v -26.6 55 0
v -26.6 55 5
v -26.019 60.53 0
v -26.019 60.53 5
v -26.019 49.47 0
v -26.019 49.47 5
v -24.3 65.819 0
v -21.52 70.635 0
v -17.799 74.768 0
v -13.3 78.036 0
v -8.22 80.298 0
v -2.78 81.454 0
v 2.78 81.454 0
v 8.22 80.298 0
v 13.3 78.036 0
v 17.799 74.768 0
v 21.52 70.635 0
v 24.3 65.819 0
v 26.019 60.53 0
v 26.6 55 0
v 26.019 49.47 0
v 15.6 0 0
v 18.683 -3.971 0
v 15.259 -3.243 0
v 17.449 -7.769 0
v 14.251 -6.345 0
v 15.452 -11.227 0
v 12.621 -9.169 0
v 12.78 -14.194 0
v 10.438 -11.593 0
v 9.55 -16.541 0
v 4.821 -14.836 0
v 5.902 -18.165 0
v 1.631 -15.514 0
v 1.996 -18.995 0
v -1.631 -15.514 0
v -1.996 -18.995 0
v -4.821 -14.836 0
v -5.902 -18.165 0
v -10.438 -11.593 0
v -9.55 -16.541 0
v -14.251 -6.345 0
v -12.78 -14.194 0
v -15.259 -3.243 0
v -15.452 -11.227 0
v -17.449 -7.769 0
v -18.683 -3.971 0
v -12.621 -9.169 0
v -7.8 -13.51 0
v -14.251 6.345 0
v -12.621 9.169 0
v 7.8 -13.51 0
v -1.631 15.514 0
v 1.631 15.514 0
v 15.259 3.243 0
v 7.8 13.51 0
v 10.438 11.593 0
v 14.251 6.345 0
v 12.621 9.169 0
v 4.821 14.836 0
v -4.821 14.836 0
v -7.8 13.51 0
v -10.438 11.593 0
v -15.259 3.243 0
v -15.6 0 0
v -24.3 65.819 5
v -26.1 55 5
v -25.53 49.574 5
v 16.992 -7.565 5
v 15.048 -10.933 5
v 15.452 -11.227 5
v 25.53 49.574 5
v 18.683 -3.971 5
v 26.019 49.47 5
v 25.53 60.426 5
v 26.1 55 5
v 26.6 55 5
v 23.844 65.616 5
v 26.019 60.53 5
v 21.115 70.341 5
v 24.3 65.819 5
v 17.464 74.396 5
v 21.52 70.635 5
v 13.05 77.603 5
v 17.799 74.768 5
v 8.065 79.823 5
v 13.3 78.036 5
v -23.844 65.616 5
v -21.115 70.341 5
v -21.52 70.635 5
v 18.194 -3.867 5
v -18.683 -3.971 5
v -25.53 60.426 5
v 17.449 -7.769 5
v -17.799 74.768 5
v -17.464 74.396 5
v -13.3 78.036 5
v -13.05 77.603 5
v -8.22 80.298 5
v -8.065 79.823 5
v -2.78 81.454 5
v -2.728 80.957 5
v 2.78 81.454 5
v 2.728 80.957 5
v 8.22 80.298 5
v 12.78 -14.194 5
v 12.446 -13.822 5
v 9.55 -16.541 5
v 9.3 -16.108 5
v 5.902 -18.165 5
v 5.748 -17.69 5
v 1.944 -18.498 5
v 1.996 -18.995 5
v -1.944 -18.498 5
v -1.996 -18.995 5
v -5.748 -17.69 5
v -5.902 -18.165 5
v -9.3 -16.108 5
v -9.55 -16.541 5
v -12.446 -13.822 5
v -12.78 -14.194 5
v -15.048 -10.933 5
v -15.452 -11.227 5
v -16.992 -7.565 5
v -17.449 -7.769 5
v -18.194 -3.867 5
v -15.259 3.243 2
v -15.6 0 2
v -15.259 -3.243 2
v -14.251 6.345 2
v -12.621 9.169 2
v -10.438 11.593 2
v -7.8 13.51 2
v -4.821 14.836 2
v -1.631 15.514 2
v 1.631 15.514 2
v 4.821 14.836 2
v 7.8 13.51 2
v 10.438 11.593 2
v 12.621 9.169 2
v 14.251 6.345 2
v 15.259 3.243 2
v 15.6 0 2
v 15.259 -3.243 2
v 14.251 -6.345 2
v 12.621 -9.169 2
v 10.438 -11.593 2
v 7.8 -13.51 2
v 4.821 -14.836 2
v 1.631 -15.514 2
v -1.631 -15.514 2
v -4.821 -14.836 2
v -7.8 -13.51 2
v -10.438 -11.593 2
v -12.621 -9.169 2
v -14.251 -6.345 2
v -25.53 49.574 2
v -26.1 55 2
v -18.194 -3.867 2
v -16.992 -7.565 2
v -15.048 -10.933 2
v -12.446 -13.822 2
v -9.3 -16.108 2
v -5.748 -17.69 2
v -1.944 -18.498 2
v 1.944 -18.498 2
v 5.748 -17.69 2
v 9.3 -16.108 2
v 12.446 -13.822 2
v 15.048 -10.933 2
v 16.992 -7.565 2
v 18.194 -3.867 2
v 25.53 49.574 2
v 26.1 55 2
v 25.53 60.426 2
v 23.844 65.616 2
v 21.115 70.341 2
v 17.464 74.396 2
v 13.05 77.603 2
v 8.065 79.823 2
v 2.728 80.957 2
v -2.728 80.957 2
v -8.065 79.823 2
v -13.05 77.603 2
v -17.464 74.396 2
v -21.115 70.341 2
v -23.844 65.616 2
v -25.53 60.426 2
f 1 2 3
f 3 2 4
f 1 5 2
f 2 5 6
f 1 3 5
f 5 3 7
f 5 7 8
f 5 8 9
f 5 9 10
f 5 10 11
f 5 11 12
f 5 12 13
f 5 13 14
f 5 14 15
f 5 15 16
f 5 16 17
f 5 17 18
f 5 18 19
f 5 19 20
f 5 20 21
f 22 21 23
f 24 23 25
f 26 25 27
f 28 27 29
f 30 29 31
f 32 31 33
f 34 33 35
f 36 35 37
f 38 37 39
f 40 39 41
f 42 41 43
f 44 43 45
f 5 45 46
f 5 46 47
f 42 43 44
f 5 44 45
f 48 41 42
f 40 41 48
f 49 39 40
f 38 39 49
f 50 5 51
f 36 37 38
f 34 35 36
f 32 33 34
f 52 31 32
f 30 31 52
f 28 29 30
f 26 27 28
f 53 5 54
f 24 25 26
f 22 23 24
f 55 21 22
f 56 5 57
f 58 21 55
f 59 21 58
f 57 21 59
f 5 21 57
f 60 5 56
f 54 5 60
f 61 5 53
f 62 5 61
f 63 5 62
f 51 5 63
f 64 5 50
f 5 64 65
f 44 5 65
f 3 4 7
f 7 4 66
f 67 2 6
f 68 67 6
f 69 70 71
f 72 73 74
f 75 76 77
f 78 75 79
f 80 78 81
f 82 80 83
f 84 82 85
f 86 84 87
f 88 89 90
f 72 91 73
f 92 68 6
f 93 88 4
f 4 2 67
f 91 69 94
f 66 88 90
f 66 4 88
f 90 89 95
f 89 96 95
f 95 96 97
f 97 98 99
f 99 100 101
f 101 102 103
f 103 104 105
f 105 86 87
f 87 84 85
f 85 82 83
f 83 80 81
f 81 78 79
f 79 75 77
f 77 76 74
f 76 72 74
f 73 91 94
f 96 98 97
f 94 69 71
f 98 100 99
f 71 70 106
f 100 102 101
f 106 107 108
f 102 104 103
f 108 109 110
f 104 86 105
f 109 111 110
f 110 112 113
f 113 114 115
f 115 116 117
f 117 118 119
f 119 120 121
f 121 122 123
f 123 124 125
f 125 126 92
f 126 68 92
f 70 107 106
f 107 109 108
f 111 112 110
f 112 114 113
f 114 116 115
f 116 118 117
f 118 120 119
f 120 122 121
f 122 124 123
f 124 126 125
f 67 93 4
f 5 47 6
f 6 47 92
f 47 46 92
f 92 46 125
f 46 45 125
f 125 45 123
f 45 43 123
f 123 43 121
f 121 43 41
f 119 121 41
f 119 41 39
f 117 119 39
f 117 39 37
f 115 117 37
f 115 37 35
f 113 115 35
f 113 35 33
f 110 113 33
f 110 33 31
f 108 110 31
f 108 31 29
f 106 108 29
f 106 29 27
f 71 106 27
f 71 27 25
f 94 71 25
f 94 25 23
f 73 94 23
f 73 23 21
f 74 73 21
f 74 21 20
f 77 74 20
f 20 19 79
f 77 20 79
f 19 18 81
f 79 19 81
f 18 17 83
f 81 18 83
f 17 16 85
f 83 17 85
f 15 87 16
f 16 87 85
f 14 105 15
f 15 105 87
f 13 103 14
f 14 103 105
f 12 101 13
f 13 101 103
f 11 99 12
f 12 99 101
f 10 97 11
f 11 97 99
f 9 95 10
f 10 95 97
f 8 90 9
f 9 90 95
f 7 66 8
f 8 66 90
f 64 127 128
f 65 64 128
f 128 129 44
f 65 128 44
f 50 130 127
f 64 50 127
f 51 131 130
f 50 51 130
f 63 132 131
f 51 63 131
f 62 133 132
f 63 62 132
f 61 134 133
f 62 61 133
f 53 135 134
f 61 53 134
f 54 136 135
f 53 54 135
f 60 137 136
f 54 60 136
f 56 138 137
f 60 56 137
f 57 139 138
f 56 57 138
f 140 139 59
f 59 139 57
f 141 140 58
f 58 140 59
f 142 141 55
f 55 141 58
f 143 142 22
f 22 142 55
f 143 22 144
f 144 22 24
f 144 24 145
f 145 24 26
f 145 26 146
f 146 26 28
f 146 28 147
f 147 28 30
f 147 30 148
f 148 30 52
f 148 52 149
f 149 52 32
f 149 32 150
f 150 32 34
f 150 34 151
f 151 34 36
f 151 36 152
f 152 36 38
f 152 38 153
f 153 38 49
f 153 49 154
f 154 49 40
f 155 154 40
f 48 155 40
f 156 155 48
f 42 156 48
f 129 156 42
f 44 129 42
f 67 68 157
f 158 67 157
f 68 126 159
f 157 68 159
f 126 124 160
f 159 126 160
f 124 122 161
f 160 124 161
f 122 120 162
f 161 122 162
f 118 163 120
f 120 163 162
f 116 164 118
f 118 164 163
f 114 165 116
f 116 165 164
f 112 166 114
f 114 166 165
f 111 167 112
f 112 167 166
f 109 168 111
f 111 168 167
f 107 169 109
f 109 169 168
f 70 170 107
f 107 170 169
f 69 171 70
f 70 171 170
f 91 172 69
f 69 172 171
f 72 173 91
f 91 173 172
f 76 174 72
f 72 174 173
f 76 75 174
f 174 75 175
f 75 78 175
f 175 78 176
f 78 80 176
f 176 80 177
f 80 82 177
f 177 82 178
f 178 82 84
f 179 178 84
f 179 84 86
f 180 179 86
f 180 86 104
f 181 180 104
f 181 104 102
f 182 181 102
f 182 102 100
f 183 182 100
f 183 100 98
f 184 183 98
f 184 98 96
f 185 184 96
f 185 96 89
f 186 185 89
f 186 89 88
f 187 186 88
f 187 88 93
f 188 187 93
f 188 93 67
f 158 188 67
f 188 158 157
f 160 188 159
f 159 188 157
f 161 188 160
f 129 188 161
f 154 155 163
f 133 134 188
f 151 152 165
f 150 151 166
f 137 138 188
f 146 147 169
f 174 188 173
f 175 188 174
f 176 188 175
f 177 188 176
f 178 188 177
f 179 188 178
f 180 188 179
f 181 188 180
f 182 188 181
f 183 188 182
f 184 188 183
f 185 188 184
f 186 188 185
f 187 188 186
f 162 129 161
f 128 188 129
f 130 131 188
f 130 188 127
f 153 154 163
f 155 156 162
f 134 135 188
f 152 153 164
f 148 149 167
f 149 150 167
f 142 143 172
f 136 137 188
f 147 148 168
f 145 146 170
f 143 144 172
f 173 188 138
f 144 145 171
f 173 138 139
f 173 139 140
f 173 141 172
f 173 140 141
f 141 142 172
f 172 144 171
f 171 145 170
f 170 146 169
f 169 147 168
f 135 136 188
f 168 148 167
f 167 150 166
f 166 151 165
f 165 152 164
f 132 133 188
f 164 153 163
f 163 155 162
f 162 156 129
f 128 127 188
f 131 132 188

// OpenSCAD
// Dust Shoe

spindleCollarD 	= 27 ;
spindleCollarH	= 2 ;
curtainDepth	= 5 ; 
ringThickness	= 5 ; 
vacHoleD		= 42 ;	 
holeDist		= 55 ;
m3HoleD			= 3.4 ; 
lugLength		= 25.2 ; 
lip				= .6 ;

difference(){
	curtain();
	//fixtureCutout();
}

difference (){
	Top();
	holes();
	//fixtureCutout();
}

 
module Top(){
	hull(){
		cylinder(r = spindleCollarD / 2 + lip + ringThickness, h = spindleCollarH);
		translate ([0, holeDist, 0])	
			cylinder (r = vacHoleD / 2 + lip + ringThickness, h = spindleCollarH);
	}
}

module holes(){
	translate ([0,0, -.2]){
		cylinder(r = spindleCollarD / 2 + 2.1 , h = spindleCollarH + .4);
	}
}

module curtain(){
	difference(){
		hull(){
			cylinder(r = spindleCollarD / 2 + lip + ringThickness, h = curtainDepth);
			translate ([0, holeDist, 0])	
				cylinder (r = vacHoleD / 2 + lip + ringThickness, h = curtainDepth);
		}
		hull(){
			cylinder(r = spindleCollarD / 2 + lip + ringThickness - .5, h = curtainDepth + .1);
			translate ([0, holeDist, 0])	
				cylinder (r = vacHoleD / 2 + lip + ringThickness - .5, h = curtainDepth + .1);
		}	
	}
}
